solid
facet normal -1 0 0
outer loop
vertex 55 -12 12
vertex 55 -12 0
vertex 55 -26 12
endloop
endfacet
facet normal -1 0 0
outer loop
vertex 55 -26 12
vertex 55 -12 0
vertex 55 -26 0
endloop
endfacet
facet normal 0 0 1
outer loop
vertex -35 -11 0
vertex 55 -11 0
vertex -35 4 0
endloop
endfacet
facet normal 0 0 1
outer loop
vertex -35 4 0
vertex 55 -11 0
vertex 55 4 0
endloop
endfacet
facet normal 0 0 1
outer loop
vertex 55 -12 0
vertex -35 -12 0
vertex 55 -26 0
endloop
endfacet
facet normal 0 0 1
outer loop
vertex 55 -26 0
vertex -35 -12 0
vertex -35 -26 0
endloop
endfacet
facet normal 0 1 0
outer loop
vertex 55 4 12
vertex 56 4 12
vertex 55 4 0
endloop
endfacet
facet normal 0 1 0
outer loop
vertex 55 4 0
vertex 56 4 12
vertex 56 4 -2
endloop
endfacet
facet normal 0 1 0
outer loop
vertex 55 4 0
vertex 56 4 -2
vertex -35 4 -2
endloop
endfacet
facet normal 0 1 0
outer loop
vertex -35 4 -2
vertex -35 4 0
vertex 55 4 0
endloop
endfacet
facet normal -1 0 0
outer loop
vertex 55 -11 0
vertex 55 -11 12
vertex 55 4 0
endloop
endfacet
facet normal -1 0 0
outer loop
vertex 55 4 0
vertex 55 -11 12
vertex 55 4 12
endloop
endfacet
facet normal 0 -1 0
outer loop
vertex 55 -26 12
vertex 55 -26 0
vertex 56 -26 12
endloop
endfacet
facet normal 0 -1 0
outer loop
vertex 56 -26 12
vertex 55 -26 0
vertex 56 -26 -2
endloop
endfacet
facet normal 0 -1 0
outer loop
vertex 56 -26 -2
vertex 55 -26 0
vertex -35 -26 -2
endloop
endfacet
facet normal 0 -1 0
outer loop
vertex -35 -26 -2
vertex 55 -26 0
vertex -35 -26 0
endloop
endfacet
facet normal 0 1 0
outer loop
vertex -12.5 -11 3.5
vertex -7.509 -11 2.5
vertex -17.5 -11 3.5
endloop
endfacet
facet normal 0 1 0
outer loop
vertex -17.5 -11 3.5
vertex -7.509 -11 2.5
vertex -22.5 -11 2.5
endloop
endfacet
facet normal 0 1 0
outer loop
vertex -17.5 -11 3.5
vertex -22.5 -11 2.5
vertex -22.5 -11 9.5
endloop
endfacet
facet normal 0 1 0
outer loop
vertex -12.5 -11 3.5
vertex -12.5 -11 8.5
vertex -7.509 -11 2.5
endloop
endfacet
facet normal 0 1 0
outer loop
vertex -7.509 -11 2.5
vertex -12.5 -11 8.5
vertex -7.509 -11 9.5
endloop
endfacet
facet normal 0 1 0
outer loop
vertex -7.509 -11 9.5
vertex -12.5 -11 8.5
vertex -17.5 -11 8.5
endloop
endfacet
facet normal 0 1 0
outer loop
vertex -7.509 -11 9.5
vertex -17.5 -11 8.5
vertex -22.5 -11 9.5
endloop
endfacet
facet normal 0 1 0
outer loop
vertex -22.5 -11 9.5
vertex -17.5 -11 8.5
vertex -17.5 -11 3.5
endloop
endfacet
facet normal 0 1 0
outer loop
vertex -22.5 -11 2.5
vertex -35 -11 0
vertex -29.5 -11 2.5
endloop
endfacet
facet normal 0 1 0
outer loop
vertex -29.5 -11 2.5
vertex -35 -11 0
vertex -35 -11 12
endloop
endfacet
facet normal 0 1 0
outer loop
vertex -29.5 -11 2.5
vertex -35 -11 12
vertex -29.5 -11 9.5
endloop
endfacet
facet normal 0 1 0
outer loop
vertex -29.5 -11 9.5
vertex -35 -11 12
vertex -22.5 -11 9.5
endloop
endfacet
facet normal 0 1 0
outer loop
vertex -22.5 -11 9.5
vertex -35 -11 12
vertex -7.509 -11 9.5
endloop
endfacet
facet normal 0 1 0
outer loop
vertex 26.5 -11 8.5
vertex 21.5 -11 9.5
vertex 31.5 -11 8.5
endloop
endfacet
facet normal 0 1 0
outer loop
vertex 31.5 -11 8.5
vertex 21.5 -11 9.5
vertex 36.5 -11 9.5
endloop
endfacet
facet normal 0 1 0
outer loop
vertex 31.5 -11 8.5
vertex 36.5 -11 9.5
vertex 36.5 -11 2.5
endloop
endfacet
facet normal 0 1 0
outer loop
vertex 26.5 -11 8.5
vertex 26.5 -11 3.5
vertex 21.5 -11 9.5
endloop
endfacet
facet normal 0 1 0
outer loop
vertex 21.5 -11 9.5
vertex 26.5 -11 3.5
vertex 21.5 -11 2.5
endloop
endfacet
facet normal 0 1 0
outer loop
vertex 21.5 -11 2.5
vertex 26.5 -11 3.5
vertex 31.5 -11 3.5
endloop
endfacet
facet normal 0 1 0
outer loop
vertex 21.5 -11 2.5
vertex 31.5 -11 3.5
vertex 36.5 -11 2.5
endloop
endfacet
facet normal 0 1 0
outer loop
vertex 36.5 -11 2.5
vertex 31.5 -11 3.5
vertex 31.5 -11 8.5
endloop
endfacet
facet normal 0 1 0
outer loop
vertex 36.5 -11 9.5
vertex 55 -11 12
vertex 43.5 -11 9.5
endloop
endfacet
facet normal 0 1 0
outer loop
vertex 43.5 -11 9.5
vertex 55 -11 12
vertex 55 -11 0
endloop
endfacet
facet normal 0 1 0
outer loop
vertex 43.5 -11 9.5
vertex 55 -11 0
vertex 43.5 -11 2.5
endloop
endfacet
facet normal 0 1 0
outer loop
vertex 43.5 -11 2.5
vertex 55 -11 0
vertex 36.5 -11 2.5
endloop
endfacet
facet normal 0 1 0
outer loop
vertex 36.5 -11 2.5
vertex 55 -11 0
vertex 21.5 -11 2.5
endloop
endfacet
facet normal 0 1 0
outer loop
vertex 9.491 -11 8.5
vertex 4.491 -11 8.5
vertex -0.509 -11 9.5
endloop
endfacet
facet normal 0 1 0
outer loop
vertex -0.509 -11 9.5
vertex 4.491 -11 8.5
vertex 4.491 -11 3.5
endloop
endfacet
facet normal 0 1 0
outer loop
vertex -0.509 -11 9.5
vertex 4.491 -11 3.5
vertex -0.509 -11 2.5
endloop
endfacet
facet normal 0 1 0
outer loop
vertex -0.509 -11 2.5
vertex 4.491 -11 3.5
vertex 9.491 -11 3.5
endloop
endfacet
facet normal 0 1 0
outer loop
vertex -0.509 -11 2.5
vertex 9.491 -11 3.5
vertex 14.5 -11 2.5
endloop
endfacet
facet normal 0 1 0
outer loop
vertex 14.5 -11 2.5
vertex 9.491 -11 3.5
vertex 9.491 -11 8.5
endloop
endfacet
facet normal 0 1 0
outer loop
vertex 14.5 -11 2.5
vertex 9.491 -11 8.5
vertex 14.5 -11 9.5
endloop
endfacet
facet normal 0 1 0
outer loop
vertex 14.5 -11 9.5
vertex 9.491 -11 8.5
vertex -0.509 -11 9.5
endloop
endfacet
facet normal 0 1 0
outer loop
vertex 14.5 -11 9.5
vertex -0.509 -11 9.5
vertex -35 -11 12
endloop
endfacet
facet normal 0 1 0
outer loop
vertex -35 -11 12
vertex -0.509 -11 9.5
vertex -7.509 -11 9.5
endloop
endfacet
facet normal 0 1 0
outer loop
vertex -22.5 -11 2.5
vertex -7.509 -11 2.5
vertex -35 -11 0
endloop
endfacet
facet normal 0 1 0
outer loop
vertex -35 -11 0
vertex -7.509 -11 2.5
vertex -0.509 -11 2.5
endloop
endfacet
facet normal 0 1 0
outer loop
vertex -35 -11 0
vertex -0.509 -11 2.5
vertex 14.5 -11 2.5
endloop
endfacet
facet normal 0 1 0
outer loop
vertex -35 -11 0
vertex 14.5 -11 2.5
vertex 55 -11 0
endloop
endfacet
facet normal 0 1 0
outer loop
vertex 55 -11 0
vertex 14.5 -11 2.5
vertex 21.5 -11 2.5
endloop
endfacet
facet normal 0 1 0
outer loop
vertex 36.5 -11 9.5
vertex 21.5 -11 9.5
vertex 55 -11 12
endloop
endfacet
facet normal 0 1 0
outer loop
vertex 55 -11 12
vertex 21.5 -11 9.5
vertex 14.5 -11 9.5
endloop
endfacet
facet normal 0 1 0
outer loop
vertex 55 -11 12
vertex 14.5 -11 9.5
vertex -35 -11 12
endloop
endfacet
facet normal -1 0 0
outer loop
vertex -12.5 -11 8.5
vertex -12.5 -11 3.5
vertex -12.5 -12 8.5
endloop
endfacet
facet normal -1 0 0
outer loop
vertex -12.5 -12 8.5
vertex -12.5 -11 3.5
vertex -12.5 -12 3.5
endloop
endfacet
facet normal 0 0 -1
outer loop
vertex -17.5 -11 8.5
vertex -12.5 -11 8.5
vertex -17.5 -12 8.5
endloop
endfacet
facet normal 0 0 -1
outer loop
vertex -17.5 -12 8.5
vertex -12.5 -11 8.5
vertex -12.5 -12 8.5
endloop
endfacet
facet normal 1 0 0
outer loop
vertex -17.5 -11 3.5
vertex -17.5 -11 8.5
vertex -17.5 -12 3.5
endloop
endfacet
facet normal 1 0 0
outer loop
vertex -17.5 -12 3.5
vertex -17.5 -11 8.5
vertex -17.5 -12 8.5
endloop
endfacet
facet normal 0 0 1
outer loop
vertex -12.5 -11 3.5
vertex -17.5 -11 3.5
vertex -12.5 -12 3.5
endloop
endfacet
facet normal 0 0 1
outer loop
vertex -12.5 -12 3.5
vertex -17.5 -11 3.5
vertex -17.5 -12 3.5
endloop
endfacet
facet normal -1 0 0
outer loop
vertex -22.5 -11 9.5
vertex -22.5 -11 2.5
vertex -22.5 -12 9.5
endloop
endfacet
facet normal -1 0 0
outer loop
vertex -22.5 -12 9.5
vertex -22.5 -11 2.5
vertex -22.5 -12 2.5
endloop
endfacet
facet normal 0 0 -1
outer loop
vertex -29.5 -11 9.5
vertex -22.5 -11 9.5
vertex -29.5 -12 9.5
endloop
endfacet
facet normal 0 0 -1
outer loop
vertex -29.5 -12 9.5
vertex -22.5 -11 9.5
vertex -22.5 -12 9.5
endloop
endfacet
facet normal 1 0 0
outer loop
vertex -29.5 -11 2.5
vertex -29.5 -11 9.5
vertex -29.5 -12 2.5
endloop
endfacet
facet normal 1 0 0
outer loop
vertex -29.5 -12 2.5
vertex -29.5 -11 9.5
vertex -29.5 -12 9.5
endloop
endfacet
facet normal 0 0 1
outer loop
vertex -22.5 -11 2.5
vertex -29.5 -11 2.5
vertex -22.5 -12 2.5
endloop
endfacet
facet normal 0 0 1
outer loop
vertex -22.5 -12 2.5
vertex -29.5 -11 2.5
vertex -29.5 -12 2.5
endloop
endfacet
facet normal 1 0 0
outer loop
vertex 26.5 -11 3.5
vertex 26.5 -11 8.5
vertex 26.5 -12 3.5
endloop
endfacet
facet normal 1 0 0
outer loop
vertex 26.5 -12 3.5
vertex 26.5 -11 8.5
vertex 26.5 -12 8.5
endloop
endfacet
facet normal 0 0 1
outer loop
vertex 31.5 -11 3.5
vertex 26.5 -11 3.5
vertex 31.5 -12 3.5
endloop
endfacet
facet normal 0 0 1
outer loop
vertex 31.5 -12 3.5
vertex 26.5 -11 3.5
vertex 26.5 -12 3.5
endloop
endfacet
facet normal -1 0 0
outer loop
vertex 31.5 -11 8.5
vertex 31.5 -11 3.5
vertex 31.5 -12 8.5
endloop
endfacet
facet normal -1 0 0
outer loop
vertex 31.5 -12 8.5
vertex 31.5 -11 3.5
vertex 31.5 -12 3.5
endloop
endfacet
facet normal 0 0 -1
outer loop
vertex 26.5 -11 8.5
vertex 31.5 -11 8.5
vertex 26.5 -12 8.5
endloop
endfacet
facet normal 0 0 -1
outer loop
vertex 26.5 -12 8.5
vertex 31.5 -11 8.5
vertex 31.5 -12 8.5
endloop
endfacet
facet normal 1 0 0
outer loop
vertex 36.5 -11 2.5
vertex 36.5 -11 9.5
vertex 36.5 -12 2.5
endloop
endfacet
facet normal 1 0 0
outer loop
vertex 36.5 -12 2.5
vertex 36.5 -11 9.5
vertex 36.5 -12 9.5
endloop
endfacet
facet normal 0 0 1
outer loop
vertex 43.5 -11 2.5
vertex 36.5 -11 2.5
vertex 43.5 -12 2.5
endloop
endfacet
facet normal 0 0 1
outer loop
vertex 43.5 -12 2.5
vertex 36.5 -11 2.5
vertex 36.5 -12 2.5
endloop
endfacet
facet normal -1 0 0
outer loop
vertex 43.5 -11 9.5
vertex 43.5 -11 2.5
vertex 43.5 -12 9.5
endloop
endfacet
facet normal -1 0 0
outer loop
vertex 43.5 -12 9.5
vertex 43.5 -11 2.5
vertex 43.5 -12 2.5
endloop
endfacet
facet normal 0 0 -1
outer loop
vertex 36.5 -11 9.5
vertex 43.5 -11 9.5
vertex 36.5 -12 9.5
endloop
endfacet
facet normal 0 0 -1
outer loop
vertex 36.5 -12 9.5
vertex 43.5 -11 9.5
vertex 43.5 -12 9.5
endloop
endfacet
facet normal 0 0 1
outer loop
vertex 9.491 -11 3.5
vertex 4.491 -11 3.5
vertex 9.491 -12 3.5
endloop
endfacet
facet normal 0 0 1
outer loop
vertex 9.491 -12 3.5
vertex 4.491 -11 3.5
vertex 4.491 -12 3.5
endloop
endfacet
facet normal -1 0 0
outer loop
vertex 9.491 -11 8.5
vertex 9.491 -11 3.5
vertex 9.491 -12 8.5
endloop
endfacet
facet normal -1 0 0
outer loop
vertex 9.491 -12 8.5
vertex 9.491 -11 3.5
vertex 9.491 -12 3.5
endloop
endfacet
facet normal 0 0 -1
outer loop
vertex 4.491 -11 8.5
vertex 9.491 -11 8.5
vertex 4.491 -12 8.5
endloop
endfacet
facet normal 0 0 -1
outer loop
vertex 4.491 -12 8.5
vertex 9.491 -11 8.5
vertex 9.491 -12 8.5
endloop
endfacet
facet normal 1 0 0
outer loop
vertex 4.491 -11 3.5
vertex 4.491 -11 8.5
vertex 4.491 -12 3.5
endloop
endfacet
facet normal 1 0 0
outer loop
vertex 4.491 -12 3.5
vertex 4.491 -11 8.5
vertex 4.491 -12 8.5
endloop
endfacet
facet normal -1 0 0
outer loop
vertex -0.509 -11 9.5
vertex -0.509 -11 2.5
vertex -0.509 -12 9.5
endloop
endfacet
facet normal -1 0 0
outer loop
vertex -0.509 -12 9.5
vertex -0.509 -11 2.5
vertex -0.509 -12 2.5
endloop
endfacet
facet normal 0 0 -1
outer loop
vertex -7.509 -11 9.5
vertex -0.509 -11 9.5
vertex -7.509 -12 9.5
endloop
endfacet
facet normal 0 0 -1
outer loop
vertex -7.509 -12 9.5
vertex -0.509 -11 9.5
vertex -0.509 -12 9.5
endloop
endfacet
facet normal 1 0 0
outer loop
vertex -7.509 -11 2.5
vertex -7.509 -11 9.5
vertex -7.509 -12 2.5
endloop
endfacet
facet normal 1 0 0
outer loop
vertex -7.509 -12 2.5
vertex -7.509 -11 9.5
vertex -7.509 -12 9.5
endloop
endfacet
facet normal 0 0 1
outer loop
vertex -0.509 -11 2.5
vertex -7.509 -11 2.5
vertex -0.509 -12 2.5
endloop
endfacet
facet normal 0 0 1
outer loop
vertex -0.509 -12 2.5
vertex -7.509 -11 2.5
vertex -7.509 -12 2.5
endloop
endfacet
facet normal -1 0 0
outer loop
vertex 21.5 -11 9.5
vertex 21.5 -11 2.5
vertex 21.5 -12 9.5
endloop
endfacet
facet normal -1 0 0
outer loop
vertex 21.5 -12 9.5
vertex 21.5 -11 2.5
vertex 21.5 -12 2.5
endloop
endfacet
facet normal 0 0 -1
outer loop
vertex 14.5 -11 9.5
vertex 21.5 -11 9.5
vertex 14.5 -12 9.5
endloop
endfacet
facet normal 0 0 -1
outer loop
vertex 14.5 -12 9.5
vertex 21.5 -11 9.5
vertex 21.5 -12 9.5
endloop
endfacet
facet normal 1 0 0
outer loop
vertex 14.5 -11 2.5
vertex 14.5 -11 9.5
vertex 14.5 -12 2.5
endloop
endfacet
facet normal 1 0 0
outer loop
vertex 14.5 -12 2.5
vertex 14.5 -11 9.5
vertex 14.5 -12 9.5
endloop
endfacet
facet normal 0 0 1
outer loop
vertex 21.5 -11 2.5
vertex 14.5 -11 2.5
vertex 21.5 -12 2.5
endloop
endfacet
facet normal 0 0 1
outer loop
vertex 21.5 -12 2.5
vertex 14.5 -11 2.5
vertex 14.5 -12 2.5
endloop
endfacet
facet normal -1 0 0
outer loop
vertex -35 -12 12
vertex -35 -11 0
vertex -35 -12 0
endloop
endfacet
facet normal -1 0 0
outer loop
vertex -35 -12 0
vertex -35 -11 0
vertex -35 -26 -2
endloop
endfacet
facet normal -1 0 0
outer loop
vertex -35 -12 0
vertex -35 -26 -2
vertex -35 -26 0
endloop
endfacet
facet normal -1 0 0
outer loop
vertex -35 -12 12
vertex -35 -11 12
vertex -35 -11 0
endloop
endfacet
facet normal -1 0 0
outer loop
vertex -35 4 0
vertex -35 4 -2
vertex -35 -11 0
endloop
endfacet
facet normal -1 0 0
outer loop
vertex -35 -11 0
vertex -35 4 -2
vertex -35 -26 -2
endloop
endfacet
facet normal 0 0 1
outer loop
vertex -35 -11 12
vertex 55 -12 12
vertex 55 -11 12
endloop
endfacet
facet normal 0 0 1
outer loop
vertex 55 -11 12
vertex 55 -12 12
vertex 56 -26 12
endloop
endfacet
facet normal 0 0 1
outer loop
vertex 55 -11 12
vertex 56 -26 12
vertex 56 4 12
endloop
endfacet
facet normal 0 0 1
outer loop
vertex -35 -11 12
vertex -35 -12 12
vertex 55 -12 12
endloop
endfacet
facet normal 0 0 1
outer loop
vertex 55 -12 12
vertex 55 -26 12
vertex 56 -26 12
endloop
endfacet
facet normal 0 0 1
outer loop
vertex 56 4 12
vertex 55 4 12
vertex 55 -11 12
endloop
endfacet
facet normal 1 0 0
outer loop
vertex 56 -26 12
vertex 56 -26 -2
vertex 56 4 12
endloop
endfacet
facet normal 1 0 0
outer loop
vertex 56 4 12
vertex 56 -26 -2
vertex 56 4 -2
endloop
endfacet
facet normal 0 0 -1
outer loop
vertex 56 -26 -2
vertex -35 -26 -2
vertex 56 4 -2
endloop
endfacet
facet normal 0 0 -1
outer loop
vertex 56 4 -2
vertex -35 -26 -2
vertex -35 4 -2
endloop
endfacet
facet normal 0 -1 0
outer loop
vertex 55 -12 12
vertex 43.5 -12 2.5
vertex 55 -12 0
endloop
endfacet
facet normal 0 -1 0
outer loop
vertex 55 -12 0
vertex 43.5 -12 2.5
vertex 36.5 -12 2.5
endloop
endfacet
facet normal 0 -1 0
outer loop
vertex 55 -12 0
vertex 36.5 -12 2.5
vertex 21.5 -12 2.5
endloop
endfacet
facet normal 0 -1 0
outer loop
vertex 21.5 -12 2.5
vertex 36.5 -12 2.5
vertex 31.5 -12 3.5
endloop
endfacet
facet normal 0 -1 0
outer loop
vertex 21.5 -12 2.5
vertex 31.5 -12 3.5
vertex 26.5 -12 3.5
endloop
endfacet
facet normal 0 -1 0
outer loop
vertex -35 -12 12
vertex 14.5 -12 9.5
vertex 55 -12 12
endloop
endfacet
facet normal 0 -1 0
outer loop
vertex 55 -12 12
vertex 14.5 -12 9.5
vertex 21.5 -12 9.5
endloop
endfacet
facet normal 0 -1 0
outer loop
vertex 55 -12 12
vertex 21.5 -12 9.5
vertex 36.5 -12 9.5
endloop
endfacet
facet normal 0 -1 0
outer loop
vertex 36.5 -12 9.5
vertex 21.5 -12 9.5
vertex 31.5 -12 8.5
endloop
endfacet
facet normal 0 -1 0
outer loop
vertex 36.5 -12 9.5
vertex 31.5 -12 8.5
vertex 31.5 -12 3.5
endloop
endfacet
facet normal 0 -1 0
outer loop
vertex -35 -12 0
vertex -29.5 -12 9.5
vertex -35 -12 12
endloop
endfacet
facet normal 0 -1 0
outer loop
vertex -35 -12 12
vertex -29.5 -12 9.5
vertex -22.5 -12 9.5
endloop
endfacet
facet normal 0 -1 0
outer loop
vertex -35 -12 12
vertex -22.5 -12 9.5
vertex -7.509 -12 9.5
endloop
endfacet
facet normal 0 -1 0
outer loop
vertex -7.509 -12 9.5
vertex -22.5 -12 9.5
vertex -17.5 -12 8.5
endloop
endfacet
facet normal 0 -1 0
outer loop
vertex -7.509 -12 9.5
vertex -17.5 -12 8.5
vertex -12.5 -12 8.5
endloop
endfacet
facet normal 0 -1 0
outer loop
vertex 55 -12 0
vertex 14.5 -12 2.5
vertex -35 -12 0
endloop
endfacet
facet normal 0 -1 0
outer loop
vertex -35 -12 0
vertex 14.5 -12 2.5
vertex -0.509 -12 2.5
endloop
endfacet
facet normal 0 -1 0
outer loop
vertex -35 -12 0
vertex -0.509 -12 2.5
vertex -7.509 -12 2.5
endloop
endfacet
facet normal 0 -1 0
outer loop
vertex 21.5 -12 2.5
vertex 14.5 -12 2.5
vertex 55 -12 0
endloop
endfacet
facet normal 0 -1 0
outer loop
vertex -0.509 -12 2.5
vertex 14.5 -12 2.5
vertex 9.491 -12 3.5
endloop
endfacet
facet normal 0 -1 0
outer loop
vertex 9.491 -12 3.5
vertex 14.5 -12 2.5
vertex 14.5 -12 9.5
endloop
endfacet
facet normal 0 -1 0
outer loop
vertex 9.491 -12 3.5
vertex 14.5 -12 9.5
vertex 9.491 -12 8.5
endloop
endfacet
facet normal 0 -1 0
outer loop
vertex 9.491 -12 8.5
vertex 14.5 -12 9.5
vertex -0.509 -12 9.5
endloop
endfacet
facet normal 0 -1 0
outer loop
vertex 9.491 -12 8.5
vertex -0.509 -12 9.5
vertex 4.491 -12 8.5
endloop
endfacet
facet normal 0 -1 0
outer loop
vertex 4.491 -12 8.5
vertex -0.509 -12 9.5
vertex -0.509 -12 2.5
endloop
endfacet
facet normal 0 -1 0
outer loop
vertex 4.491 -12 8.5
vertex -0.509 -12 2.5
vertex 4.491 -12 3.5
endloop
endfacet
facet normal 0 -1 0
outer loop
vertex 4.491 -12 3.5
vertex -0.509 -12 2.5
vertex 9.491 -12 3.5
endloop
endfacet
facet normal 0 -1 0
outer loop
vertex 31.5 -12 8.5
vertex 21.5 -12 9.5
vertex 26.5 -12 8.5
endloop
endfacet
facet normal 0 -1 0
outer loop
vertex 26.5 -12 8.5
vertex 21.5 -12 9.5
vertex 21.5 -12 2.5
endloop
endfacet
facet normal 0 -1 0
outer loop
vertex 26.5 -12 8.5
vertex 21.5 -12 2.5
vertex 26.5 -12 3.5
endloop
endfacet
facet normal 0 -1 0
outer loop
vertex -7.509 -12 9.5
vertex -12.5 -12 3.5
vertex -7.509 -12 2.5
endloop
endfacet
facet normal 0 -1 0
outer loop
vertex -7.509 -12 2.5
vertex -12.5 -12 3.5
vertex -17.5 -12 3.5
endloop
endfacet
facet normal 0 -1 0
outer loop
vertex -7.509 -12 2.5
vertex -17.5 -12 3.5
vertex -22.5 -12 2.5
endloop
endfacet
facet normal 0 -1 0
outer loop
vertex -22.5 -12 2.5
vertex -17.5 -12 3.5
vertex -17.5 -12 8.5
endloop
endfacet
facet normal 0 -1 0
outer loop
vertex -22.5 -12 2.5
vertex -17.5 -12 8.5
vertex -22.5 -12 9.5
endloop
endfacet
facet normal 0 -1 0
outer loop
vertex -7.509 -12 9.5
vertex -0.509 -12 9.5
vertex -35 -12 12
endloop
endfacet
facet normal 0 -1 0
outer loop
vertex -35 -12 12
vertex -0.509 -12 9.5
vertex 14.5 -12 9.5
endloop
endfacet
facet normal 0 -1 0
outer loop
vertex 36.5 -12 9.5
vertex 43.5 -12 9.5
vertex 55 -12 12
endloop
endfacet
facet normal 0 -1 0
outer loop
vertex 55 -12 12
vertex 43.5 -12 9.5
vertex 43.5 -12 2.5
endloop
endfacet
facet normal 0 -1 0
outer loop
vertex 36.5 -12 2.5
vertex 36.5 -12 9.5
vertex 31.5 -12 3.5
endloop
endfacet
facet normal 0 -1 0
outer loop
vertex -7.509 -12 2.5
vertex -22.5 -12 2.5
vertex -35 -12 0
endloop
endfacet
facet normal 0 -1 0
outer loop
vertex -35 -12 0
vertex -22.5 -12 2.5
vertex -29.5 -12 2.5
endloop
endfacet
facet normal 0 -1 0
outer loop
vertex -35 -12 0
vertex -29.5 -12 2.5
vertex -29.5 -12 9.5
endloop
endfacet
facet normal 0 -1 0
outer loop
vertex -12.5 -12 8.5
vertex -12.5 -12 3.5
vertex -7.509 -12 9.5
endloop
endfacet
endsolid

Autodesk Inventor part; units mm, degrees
ref_plane "YZ Plane" through (0, 0, 0) normal (1, 0, 0) x (0, 1, 0)
ref_plane "XZ Plane" through (0, 0, 0) normal (0, 1, 0) x (-1, 0, 0)
ref_plane "XY Plane" through (0, 0, 0) normal (0, 0, 1) x (1, 0, 0)
sketch "Sketch2" plane through (0, 0, 0) normal (0, 0, 1) x (1, 0, 0)
  line L0 (-54, 10) -> (54, 10)
  line L1 (55, 9) -> (55, -9)
  line L2 (54, -10) -> (-54, -10)
  line L3 (-55, -9) -> (-55, 9)
  line L4 (-55, 10) -> (55, -10) construction
  line L5 (55, 10) -> (-55, -10) construction
  line L6 (53, 8) -> (-53, 8)
  line L7 (-53, 8) -> (-53, -8)
  line L8 (-53, -8) -> (53, -8)
  line L9 (53, -8) -> (53, 8)
  line L10 (56, 11) -> (-56, 11)
  line L11 (-56, 11) -> (-56, -11)
  line L12 (-56, -11) -> (56, -11)
  line L13 (56, -11) -> (56, 11)
  arc A0 (55, 9) -> (54, 10) centre (54, 9) ccw
  arc A1 (54, -10) -> (55, -9) centre (54, -9) ccw
  arc A2 (-55, -9) -> (-54, -10) centre (-54, -9) ccw
  arc A3 (-54, 10) -> (-55, 9) centre (-54, 9) ccw
  point P0 (0, 0)
  dimension "d0" = 110
  dimension "d1" = 20
  dimension "d2" = 2
  dimension "d3" = 1
  dimension "d10" = 1
extrude "Extrusion2" [suppressed]
sketch "Sketch3" plane through (-56, -11, 0) normal (-1, 0, 0) x (0, 0, 1)
  line L0 (7, 17) -> (9, 17)
  line L1 (9, 17) -> (9, 5)
  line L2 (9, 5) -> (7, 5)
  line L3 (7, 5) -> (7, 17)
  line L4 (0, 22) -> (0, 0) projected
  line L5 (0, 22) -> (12, 22) projected
  circle A0 centre (4, 11) radius 2
  line L6 (12, 22) -> (12, 0) projected
  line L7 (0, 11) -> (2, 11) construction
  dimension "d20" = 4
  dimension "d12" = 2
  dimension "d13" = 12
  dimension "d15" = 5
  dimension "d21" = 3
  dimension "d24" = 4
  dimension "d25" = 2
  dimension "d26" = 3
extrude "Extrusion4" [suppressed]
sketch "Sketch4" plane through (-54, 10, 12) normal (0, -1, 0) x (1, 0, 0)
  line L0 (3.4899, -1) -> (43.4899, -1)
  line L1 (43.4899, -1) -> (43.4899, 0)
  line L2 (43.4899, 0) -> (3.4899, 0)
  line L3 (3.4899, 0) -> (3.4899, -1)
  line L4 (0, 0) -> (108, 0) projected
  point P0 (54, -12)
  dimension "d27" = 1
  dimension "d28" = 40
extrude "Extrusion6" [suppressed]
ref_plane "Work Plane1" through (-56, -11, 12) normal (0, -1, 0) x (1, 0, 0)
sketch "Sketch5" plane through (-56, -11, 12) normal (0, -1, 0) x (1, 0, 0)
  line L0 (111, -12) -> (111, 0) construction
  line L1 (111, -6) -> (1, -6) construction
  line L2 (1, -12) -> (1, 0) construction
  line L3 (38.5, -3.5) -> (38.5, -8.5)
  line L4 (38.5, -8.5) -> (43.5, -8.5)
  line L5 (43.5, -8.5) -> (43.5, -3.5)
  line L6 (43.5, -3.5) -> (38.5, -3.5)
  line L7 (38.5, -3.5) -> (43.5, -8.5) construction
  line L8 (38.5, -8.5) -> (43.5, -3.5) construction
  line L9 (26.5, -9.5) -> (26.5, -2.5)
  line L10 (26.5, -2.5) -> (33.5, -2.5)
  line L11 (33.5, -2.5) -> (33.5, -9.5)
  line L12 (33.5, -9.5) -> (26.5, -9.5)
  line L13 (26.5, -9.5) -> (33.5, -2.5) construction
  line L14 (26.5, -2.5) -> (33.5, -9.5) construction
  line L15 (60.4912, -8.5) -> (65.4912, -8.5)
  line L16 (65.4912, -8.5) -> (65.4912, -3.5)
  line L17 (65.4912, -3.5) -> (60.4912, -3.5)
  line L18 (60.4912, -3.5) -> (65.4912, -8.5) construction
  line L19 (60.4912, -3.5) -> (60.4912, -8.5)
  line L20 (60.4912, -8.5) -> (65.4912, -3.5) construction
  line L21 (55.4912, -9.5) -> (48.4912, -9.5)
  line L22 (48.4912, -9.5) -> (48.4912, -2.5)
  line L23 (55.4912, -2.5) -> (55.4912, -9.5)
  line L24 (48.4912, -9.5) -> (55.4912, -2.5) construction
  line L25 (48.4912, -2.5) -> (55.4912, -9.5) construction
  line L26 (48.4912, -2.5) -> (55.4912, -2.5)
  line L27 (77.5, -9.5) -> (70.5, -9.5)
  line L28 (77.5, -2.5) -> (77.5, -9.5)
  line L29 (70.5, -2.5) -> (77.5, -2.5)
  line L30 (70.5, -2.5) -> (77.5, -9.5) construction
  line L31 (70.5, -9.5) -> (70.5, -2.5)
  line L32 (70.5, -9.5) -> (77.5, -2.5) construction
  line L33 (82.5, -3.5) -> (82.5, -8.5)
  line L34 (87.5, -3.5) -> (82.5, -3.5)
  line L35 (82.5, -3.5) -> (87.5, -8.5) construction
  line L36 (82.5, -8.5) -> (87.5, -3.5) construction
  line L37 (87.5, -8.5) -> (87.5, -3.5)
  line L38 (82.5, -8.5) -> (87.5, -8.5)
  line L39 (99.5, -9.5) -> (92.5, -9.5)
  line L40 (99.5, -2.5) -> (99.5, -9.5)
  line L41 (92.5, -2.5) -> (99.5, -2.5)
  line L42 (92.5, -2.5) -> (99.5, -9.5) construction
  line L43 (92.5, -9.5) -> (92.5, -2.5)
  line L44 (92.5, -9.5) -> (99.5, -2.5) construction
  line L45 (106, -6) -> (30, -6) construction
  line L46 (110, 0) -> (111, 0) projected
  line L47 (110, -12) -> (2, -12) projected
  line L48 (111, 0) -> (21, 0)
  line L49 (21, 0) -> (21, -12)
  line L50 (21, -12) -> (111, -12)
  line L51 (111, -12) -> (111, 0)
  line L52 (112, -14) -> (112, 0) projected
  line L53 (111, 0) -> (112, 0)
  line L54 (112, 0) -> (112, -14)
  line L55 (112, -14) -> (21, -14)
  line L56 (0, -14) -> (112, -14) projected
  line L57 (21, -14) -> (21, -12)
  point P0 (41, -6)
  point P1 (62.9912, -6)
  point P2 (51.9912, -6)
  point P3 (74, -6)
  point P4 (85, -6)
  point P5 (96, -6)
  dimension "d47" = 5
  dimension "d48" = 5
  dimension "d49" = 7
  dimension "d50" = 7
  dimension "d51" = 5
  dimension "d52" = 5
  dimension "d53" = 7
  dimension "d54" = 7
  dimension "d55" = 5
  dimension "d56" = 5
  dimension "d57" = 7
  dimension "d58" = 7
  dimension "d59" = 7
  dimension "d60" = 7
  dimension "d61" = 5
  dimension "d62" = 90
  dimension "d63" = 12
extrude "Extrusion7" add sketch "Sketch5" along normal blind 1
extrude "Extrusion8" add sketch "Sketch5" along normal mid plane 30 contours L53 L52 L55 L57 L47 L50 L51
properties part number "sdm_finger_marker_jig"
